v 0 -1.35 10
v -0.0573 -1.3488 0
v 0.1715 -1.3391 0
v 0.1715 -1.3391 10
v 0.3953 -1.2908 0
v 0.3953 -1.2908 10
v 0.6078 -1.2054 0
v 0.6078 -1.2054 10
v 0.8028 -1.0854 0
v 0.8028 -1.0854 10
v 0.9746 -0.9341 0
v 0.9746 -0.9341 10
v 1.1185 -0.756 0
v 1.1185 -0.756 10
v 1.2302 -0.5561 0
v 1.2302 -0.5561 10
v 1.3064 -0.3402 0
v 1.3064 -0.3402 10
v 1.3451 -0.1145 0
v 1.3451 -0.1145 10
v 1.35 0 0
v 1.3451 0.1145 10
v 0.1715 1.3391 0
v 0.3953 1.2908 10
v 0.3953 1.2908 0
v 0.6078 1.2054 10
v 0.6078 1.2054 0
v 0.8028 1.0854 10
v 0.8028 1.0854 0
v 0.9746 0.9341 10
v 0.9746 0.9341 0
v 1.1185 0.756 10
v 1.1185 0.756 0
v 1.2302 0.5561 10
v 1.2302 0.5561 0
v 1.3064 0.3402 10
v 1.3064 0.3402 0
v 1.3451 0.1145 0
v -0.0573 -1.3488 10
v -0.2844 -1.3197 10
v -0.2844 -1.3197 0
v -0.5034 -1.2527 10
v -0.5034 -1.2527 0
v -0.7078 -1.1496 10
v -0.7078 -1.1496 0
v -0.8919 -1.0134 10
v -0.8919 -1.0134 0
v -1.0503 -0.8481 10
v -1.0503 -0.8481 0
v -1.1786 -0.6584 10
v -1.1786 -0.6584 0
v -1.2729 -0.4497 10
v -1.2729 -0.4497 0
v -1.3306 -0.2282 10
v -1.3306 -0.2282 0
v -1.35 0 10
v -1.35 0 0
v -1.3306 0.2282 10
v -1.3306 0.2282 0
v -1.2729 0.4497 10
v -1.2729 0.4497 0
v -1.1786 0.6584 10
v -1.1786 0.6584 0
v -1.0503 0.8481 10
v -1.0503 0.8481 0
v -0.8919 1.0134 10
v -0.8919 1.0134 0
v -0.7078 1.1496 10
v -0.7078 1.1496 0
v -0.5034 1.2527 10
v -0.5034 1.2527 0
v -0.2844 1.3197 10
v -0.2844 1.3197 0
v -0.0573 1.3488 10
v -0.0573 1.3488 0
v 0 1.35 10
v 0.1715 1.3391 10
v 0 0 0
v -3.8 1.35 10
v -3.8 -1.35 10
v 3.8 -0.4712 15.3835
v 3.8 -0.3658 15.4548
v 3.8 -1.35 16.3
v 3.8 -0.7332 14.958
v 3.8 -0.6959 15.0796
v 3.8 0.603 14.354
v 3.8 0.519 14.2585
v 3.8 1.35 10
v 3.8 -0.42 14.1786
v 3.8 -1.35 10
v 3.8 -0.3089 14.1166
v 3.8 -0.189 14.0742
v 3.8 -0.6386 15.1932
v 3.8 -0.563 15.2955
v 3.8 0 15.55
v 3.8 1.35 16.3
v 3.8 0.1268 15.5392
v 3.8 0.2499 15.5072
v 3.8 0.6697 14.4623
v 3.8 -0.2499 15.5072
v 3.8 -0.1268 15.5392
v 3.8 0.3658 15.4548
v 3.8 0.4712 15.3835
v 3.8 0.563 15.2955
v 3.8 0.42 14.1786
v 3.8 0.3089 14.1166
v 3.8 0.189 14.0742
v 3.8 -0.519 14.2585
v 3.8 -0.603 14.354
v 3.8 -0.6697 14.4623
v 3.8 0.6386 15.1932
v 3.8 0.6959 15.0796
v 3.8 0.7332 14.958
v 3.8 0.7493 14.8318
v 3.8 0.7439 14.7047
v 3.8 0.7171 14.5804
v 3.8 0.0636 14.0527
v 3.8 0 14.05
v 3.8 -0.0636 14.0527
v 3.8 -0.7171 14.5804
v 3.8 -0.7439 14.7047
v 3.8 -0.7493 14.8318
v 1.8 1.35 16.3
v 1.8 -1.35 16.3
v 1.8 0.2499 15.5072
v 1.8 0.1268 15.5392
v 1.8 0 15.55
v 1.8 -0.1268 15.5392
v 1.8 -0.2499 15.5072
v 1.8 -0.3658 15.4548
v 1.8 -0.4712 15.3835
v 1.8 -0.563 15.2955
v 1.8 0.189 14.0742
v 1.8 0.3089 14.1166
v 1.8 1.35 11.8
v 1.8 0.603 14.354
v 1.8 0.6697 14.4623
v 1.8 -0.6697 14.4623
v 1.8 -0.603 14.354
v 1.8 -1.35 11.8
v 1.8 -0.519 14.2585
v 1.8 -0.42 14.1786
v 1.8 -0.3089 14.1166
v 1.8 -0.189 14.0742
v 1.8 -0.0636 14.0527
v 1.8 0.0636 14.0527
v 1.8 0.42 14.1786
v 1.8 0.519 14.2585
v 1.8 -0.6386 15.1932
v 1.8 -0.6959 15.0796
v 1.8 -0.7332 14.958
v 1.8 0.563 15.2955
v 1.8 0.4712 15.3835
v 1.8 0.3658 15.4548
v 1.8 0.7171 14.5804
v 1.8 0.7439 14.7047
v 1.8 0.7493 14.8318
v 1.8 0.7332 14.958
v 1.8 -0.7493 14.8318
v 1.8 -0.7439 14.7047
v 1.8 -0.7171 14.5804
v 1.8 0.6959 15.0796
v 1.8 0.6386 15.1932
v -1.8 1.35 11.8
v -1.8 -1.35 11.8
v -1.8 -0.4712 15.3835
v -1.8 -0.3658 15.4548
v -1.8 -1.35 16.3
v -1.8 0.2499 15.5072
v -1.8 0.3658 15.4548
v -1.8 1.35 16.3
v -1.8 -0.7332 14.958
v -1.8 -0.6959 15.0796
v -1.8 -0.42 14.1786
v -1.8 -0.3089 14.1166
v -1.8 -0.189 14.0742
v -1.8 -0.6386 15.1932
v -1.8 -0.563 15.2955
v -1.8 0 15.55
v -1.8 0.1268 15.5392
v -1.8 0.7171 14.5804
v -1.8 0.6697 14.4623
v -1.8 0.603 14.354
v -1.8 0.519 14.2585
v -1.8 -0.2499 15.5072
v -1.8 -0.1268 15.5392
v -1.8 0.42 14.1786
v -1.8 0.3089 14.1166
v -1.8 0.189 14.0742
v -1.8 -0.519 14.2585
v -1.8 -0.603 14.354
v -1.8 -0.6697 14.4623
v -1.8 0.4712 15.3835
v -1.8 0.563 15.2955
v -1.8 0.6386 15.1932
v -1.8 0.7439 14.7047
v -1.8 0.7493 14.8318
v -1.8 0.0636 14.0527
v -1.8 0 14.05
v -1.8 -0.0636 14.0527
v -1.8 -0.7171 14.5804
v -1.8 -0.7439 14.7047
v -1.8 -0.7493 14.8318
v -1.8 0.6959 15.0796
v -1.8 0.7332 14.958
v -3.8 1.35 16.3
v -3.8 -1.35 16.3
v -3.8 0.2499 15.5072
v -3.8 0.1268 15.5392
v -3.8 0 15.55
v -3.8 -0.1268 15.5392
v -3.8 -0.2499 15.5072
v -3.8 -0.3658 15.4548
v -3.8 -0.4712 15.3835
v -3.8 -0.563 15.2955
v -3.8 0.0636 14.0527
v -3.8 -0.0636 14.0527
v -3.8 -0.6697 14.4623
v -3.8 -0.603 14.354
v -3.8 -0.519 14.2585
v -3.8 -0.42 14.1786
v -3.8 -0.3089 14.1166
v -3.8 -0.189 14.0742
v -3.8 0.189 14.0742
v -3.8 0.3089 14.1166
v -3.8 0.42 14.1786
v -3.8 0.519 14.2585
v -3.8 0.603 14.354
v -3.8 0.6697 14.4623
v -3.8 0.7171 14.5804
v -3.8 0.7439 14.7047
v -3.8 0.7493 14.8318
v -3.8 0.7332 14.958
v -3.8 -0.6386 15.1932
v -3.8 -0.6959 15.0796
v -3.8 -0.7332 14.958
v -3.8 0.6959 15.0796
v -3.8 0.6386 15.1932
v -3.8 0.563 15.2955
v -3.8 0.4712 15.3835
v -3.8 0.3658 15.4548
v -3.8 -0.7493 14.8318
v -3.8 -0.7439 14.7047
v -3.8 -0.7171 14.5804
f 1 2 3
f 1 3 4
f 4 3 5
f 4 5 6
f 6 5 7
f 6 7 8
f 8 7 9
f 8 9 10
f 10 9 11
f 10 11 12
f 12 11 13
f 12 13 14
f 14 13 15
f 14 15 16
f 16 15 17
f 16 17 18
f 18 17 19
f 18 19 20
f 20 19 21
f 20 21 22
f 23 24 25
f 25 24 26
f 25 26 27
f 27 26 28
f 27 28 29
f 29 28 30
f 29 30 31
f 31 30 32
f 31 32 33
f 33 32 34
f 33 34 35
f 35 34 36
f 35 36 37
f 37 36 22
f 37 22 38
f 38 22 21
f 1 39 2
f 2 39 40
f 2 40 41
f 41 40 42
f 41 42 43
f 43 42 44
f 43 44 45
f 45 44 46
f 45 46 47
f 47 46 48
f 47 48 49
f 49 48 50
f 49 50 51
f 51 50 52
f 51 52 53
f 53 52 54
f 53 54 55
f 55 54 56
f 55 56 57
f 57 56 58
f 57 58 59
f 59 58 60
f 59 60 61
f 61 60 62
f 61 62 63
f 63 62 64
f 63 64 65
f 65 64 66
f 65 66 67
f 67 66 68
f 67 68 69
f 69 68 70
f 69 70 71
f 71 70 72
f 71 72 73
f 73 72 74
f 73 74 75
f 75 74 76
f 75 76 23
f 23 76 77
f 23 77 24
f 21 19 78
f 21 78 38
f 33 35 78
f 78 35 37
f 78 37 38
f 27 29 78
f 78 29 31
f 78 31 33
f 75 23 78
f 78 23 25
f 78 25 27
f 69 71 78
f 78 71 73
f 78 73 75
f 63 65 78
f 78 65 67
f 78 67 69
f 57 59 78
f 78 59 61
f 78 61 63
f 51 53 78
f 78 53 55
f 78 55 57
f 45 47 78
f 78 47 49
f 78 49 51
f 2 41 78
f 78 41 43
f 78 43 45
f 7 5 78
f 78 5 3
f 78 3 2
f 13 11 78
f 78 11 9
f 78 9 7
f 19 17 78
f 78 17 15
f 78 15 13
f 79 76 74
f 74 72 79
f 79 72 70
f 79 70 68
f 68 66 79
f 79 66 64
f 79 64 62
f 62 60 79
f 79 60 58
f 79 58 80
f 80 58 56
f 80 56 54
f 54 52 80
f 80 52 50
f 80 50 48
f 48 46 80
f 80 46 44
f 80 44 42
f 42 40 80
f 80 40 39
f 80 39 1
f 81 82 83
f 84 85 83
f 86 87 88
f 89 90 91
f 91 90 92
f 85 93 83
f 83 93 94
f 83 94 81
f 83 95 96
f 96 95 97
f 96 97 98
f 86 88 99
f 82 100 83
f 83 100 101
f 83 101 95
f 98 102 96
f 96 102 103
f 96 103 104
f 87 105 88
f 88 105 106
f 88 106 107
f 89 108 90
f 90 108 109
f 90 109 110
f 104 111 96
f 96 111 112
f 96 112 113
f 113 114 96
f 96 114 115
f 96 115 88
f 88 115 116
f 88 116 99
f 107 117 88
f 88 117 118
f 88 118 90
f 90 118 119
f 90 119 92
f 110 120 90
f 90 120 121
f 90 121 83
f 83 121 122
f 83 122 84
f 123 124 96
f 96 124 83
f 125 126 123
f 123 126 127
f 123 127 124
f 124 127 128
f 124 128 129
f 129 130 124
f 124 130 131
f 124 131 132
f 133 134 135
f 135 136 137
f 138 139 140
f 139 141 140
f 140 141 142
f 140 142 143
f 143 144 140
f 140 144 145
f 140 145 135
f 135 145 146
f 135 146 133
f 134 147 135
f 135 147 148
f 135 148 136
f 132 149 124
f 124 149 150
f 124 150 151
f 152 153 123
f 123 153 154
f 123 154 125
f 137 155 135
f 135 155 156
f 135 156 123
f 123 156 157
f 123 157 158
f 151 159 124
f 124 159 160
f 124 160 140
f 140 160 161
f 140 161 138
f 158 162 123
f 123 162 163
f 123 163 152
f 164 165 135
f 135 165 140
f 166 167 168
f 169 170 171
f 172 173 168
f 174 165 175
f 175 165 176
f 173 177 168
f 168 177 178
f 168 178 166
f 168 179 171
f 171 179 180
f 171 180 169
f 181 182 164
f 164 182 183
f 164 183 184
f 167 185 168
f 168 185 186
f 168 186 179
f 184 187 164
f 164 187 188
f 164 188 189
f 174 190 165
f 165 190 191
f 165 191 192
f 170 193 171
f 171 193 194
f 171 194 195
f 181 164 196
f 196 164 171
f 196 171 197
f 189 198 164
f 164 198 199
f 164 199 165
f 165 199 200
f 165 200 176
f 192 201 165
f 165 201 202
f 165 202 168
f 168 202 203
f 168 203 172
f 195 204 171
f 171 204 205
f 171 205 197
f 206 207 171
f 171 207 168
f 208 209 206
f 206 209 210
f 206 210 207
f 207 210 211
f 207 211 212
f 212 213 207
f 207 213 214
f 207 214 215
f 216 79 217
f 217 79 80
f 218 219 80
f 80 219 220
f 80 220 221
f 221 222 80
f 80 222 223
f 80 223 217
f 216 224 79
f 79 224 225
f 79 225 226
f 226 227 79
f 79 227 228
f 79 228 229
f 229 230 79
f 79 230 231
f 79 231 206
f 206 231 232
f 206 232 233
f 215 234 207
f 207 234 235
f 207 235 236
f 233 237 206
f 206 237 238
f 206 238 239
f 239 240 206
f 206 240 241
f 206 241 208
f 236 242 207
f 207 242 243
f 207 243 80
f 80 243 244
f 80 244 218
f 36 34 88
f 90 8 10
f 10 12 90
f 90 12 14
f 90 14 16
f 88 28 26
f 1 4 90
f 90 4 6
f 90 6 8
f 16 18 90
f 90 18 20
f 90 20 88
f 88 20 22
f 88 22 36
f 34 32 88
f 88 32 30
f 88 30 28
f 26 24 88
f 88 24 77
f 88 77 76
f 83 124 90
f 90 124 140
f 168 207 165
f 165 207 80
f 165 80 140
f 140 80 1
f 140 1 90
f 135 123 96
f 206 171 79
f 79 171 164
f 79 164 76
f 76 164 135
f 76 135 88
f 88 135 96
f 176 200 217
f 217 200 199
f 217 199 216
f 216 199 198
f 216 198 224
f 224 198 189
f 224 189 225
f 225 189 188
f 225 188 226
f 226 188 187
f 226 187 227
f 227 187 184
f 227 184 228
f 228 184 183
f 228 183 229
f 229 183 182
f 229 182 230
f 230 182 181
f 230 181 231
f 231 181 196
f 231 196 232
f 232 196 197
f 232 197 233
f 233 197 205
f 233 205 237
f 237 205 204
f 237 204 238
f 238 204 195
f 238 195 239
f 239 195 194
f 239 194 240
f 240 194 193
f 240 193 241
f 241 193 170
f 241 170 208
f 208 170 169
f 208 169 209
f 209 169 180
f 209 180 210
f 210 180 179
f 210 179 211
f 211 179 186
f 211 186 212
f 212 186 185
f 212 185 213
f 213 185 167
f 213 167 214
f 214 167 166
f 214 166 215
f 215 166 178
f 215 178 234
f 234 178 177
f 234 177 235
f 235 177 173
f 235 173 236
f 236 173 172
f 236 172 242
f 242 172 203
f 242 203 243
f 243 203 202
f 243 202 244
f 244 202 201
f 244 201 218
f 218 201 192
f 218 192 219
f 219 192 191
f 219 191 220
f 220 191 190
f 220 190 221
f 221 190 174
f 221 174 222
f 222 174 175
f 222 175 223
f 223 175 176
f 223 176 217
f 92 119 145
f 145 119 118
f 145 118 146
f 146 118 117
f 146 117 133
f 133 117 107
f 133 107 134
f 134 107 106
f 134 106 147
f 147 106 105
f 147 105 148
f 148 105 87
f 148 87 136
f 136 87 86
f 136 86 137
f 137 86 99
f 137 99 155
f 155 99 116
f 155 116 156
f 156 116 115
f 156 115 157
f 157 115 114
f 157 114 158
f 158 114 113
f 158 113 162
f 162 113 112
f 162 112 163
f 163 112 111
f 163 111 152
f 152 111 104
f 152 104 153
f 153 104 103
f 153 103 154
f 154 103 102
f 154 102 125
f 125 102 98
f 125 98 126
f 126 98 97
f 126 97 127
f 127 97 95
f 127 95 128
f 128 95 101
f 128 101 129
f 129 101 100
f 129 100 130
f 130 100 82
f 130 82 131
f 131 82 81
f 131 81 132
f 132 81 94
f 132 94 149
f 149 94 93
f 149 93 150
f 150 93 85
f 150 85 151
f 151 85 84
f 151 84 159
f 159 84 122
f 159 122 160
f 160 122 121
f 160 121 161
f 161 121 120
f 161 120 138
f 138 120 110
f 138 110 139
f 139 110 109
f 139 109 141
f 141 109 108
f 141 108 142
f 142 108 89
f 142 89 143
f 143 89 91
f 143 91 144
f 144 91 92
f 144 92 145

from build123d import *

# Parameters (mm, degrees)
SKETCH1_R                = 1.35
BOSS_EXTRUDE1_DEPTH      = 10
BOSS_EXTRUDE5_DEPTH      = 1.35
BOSS_EXTRUDE5_DEPTH_BACK = 1.35
CUT_EXTRUDE1_DEPTH       = 11.25
CUT_EXTRUDE1_DEPTH_BACK  = 11.25
SKETCH4_R                = 0.75


with BuildPart() as part:
    # Sketch1 → Boss-Extrude1 (new body)
    with BuildSketch(Plane.XY):
        Circle(SKETCH1_R)
    extrude(amount=BOSS_EXTRUDE1_DEPTH)

    # Sketch3 → Boss-Extrude5 (add, two sides: drawn at the far end of the back side and taken through both)
    with BuildSketch(Plane(origin=(0, 0, 0), x_dir=(1, 0, 0), z_dir=(0, 1, 0)).offset(-BOSS_EXTRUDE5_DEPTH_BACK)):
        Polygon((0, -10), (-3.8, -10), (-3.8, -16.3), (-1.8, -16.3), (-1.8, -11.8), (1.8, -11.8), (1.8, -16.3), (3.8, -16.3), (3.8, -10), align=None)
    extrude(amount=BOSS_EXTRUDE5_DEPTH + BOSS_EXTRUDE5_DEPTH_BACK)

    # Sketch4 → Cut-Extrude1 (cut, two sides: drawn at the far end of the back side and taken through both)
    with BuildSketch(Plane(origin=(-1.8, 0, 0), x_dir=(0, 0, -1), z_dir=(1, 0, 0)).offset(-CUT_EXTRUDE1_DEPTH_BACK)):
        with Locations((-14.8, 0)):
            Circle(SKETCH4_R)
    extrude(amount=CUT_EXTRUDE1_DEPTH + CUT_EXTRUDE1_DEPTH_BACK, mode=Mode.SUBTRACT)


solid = part.part
